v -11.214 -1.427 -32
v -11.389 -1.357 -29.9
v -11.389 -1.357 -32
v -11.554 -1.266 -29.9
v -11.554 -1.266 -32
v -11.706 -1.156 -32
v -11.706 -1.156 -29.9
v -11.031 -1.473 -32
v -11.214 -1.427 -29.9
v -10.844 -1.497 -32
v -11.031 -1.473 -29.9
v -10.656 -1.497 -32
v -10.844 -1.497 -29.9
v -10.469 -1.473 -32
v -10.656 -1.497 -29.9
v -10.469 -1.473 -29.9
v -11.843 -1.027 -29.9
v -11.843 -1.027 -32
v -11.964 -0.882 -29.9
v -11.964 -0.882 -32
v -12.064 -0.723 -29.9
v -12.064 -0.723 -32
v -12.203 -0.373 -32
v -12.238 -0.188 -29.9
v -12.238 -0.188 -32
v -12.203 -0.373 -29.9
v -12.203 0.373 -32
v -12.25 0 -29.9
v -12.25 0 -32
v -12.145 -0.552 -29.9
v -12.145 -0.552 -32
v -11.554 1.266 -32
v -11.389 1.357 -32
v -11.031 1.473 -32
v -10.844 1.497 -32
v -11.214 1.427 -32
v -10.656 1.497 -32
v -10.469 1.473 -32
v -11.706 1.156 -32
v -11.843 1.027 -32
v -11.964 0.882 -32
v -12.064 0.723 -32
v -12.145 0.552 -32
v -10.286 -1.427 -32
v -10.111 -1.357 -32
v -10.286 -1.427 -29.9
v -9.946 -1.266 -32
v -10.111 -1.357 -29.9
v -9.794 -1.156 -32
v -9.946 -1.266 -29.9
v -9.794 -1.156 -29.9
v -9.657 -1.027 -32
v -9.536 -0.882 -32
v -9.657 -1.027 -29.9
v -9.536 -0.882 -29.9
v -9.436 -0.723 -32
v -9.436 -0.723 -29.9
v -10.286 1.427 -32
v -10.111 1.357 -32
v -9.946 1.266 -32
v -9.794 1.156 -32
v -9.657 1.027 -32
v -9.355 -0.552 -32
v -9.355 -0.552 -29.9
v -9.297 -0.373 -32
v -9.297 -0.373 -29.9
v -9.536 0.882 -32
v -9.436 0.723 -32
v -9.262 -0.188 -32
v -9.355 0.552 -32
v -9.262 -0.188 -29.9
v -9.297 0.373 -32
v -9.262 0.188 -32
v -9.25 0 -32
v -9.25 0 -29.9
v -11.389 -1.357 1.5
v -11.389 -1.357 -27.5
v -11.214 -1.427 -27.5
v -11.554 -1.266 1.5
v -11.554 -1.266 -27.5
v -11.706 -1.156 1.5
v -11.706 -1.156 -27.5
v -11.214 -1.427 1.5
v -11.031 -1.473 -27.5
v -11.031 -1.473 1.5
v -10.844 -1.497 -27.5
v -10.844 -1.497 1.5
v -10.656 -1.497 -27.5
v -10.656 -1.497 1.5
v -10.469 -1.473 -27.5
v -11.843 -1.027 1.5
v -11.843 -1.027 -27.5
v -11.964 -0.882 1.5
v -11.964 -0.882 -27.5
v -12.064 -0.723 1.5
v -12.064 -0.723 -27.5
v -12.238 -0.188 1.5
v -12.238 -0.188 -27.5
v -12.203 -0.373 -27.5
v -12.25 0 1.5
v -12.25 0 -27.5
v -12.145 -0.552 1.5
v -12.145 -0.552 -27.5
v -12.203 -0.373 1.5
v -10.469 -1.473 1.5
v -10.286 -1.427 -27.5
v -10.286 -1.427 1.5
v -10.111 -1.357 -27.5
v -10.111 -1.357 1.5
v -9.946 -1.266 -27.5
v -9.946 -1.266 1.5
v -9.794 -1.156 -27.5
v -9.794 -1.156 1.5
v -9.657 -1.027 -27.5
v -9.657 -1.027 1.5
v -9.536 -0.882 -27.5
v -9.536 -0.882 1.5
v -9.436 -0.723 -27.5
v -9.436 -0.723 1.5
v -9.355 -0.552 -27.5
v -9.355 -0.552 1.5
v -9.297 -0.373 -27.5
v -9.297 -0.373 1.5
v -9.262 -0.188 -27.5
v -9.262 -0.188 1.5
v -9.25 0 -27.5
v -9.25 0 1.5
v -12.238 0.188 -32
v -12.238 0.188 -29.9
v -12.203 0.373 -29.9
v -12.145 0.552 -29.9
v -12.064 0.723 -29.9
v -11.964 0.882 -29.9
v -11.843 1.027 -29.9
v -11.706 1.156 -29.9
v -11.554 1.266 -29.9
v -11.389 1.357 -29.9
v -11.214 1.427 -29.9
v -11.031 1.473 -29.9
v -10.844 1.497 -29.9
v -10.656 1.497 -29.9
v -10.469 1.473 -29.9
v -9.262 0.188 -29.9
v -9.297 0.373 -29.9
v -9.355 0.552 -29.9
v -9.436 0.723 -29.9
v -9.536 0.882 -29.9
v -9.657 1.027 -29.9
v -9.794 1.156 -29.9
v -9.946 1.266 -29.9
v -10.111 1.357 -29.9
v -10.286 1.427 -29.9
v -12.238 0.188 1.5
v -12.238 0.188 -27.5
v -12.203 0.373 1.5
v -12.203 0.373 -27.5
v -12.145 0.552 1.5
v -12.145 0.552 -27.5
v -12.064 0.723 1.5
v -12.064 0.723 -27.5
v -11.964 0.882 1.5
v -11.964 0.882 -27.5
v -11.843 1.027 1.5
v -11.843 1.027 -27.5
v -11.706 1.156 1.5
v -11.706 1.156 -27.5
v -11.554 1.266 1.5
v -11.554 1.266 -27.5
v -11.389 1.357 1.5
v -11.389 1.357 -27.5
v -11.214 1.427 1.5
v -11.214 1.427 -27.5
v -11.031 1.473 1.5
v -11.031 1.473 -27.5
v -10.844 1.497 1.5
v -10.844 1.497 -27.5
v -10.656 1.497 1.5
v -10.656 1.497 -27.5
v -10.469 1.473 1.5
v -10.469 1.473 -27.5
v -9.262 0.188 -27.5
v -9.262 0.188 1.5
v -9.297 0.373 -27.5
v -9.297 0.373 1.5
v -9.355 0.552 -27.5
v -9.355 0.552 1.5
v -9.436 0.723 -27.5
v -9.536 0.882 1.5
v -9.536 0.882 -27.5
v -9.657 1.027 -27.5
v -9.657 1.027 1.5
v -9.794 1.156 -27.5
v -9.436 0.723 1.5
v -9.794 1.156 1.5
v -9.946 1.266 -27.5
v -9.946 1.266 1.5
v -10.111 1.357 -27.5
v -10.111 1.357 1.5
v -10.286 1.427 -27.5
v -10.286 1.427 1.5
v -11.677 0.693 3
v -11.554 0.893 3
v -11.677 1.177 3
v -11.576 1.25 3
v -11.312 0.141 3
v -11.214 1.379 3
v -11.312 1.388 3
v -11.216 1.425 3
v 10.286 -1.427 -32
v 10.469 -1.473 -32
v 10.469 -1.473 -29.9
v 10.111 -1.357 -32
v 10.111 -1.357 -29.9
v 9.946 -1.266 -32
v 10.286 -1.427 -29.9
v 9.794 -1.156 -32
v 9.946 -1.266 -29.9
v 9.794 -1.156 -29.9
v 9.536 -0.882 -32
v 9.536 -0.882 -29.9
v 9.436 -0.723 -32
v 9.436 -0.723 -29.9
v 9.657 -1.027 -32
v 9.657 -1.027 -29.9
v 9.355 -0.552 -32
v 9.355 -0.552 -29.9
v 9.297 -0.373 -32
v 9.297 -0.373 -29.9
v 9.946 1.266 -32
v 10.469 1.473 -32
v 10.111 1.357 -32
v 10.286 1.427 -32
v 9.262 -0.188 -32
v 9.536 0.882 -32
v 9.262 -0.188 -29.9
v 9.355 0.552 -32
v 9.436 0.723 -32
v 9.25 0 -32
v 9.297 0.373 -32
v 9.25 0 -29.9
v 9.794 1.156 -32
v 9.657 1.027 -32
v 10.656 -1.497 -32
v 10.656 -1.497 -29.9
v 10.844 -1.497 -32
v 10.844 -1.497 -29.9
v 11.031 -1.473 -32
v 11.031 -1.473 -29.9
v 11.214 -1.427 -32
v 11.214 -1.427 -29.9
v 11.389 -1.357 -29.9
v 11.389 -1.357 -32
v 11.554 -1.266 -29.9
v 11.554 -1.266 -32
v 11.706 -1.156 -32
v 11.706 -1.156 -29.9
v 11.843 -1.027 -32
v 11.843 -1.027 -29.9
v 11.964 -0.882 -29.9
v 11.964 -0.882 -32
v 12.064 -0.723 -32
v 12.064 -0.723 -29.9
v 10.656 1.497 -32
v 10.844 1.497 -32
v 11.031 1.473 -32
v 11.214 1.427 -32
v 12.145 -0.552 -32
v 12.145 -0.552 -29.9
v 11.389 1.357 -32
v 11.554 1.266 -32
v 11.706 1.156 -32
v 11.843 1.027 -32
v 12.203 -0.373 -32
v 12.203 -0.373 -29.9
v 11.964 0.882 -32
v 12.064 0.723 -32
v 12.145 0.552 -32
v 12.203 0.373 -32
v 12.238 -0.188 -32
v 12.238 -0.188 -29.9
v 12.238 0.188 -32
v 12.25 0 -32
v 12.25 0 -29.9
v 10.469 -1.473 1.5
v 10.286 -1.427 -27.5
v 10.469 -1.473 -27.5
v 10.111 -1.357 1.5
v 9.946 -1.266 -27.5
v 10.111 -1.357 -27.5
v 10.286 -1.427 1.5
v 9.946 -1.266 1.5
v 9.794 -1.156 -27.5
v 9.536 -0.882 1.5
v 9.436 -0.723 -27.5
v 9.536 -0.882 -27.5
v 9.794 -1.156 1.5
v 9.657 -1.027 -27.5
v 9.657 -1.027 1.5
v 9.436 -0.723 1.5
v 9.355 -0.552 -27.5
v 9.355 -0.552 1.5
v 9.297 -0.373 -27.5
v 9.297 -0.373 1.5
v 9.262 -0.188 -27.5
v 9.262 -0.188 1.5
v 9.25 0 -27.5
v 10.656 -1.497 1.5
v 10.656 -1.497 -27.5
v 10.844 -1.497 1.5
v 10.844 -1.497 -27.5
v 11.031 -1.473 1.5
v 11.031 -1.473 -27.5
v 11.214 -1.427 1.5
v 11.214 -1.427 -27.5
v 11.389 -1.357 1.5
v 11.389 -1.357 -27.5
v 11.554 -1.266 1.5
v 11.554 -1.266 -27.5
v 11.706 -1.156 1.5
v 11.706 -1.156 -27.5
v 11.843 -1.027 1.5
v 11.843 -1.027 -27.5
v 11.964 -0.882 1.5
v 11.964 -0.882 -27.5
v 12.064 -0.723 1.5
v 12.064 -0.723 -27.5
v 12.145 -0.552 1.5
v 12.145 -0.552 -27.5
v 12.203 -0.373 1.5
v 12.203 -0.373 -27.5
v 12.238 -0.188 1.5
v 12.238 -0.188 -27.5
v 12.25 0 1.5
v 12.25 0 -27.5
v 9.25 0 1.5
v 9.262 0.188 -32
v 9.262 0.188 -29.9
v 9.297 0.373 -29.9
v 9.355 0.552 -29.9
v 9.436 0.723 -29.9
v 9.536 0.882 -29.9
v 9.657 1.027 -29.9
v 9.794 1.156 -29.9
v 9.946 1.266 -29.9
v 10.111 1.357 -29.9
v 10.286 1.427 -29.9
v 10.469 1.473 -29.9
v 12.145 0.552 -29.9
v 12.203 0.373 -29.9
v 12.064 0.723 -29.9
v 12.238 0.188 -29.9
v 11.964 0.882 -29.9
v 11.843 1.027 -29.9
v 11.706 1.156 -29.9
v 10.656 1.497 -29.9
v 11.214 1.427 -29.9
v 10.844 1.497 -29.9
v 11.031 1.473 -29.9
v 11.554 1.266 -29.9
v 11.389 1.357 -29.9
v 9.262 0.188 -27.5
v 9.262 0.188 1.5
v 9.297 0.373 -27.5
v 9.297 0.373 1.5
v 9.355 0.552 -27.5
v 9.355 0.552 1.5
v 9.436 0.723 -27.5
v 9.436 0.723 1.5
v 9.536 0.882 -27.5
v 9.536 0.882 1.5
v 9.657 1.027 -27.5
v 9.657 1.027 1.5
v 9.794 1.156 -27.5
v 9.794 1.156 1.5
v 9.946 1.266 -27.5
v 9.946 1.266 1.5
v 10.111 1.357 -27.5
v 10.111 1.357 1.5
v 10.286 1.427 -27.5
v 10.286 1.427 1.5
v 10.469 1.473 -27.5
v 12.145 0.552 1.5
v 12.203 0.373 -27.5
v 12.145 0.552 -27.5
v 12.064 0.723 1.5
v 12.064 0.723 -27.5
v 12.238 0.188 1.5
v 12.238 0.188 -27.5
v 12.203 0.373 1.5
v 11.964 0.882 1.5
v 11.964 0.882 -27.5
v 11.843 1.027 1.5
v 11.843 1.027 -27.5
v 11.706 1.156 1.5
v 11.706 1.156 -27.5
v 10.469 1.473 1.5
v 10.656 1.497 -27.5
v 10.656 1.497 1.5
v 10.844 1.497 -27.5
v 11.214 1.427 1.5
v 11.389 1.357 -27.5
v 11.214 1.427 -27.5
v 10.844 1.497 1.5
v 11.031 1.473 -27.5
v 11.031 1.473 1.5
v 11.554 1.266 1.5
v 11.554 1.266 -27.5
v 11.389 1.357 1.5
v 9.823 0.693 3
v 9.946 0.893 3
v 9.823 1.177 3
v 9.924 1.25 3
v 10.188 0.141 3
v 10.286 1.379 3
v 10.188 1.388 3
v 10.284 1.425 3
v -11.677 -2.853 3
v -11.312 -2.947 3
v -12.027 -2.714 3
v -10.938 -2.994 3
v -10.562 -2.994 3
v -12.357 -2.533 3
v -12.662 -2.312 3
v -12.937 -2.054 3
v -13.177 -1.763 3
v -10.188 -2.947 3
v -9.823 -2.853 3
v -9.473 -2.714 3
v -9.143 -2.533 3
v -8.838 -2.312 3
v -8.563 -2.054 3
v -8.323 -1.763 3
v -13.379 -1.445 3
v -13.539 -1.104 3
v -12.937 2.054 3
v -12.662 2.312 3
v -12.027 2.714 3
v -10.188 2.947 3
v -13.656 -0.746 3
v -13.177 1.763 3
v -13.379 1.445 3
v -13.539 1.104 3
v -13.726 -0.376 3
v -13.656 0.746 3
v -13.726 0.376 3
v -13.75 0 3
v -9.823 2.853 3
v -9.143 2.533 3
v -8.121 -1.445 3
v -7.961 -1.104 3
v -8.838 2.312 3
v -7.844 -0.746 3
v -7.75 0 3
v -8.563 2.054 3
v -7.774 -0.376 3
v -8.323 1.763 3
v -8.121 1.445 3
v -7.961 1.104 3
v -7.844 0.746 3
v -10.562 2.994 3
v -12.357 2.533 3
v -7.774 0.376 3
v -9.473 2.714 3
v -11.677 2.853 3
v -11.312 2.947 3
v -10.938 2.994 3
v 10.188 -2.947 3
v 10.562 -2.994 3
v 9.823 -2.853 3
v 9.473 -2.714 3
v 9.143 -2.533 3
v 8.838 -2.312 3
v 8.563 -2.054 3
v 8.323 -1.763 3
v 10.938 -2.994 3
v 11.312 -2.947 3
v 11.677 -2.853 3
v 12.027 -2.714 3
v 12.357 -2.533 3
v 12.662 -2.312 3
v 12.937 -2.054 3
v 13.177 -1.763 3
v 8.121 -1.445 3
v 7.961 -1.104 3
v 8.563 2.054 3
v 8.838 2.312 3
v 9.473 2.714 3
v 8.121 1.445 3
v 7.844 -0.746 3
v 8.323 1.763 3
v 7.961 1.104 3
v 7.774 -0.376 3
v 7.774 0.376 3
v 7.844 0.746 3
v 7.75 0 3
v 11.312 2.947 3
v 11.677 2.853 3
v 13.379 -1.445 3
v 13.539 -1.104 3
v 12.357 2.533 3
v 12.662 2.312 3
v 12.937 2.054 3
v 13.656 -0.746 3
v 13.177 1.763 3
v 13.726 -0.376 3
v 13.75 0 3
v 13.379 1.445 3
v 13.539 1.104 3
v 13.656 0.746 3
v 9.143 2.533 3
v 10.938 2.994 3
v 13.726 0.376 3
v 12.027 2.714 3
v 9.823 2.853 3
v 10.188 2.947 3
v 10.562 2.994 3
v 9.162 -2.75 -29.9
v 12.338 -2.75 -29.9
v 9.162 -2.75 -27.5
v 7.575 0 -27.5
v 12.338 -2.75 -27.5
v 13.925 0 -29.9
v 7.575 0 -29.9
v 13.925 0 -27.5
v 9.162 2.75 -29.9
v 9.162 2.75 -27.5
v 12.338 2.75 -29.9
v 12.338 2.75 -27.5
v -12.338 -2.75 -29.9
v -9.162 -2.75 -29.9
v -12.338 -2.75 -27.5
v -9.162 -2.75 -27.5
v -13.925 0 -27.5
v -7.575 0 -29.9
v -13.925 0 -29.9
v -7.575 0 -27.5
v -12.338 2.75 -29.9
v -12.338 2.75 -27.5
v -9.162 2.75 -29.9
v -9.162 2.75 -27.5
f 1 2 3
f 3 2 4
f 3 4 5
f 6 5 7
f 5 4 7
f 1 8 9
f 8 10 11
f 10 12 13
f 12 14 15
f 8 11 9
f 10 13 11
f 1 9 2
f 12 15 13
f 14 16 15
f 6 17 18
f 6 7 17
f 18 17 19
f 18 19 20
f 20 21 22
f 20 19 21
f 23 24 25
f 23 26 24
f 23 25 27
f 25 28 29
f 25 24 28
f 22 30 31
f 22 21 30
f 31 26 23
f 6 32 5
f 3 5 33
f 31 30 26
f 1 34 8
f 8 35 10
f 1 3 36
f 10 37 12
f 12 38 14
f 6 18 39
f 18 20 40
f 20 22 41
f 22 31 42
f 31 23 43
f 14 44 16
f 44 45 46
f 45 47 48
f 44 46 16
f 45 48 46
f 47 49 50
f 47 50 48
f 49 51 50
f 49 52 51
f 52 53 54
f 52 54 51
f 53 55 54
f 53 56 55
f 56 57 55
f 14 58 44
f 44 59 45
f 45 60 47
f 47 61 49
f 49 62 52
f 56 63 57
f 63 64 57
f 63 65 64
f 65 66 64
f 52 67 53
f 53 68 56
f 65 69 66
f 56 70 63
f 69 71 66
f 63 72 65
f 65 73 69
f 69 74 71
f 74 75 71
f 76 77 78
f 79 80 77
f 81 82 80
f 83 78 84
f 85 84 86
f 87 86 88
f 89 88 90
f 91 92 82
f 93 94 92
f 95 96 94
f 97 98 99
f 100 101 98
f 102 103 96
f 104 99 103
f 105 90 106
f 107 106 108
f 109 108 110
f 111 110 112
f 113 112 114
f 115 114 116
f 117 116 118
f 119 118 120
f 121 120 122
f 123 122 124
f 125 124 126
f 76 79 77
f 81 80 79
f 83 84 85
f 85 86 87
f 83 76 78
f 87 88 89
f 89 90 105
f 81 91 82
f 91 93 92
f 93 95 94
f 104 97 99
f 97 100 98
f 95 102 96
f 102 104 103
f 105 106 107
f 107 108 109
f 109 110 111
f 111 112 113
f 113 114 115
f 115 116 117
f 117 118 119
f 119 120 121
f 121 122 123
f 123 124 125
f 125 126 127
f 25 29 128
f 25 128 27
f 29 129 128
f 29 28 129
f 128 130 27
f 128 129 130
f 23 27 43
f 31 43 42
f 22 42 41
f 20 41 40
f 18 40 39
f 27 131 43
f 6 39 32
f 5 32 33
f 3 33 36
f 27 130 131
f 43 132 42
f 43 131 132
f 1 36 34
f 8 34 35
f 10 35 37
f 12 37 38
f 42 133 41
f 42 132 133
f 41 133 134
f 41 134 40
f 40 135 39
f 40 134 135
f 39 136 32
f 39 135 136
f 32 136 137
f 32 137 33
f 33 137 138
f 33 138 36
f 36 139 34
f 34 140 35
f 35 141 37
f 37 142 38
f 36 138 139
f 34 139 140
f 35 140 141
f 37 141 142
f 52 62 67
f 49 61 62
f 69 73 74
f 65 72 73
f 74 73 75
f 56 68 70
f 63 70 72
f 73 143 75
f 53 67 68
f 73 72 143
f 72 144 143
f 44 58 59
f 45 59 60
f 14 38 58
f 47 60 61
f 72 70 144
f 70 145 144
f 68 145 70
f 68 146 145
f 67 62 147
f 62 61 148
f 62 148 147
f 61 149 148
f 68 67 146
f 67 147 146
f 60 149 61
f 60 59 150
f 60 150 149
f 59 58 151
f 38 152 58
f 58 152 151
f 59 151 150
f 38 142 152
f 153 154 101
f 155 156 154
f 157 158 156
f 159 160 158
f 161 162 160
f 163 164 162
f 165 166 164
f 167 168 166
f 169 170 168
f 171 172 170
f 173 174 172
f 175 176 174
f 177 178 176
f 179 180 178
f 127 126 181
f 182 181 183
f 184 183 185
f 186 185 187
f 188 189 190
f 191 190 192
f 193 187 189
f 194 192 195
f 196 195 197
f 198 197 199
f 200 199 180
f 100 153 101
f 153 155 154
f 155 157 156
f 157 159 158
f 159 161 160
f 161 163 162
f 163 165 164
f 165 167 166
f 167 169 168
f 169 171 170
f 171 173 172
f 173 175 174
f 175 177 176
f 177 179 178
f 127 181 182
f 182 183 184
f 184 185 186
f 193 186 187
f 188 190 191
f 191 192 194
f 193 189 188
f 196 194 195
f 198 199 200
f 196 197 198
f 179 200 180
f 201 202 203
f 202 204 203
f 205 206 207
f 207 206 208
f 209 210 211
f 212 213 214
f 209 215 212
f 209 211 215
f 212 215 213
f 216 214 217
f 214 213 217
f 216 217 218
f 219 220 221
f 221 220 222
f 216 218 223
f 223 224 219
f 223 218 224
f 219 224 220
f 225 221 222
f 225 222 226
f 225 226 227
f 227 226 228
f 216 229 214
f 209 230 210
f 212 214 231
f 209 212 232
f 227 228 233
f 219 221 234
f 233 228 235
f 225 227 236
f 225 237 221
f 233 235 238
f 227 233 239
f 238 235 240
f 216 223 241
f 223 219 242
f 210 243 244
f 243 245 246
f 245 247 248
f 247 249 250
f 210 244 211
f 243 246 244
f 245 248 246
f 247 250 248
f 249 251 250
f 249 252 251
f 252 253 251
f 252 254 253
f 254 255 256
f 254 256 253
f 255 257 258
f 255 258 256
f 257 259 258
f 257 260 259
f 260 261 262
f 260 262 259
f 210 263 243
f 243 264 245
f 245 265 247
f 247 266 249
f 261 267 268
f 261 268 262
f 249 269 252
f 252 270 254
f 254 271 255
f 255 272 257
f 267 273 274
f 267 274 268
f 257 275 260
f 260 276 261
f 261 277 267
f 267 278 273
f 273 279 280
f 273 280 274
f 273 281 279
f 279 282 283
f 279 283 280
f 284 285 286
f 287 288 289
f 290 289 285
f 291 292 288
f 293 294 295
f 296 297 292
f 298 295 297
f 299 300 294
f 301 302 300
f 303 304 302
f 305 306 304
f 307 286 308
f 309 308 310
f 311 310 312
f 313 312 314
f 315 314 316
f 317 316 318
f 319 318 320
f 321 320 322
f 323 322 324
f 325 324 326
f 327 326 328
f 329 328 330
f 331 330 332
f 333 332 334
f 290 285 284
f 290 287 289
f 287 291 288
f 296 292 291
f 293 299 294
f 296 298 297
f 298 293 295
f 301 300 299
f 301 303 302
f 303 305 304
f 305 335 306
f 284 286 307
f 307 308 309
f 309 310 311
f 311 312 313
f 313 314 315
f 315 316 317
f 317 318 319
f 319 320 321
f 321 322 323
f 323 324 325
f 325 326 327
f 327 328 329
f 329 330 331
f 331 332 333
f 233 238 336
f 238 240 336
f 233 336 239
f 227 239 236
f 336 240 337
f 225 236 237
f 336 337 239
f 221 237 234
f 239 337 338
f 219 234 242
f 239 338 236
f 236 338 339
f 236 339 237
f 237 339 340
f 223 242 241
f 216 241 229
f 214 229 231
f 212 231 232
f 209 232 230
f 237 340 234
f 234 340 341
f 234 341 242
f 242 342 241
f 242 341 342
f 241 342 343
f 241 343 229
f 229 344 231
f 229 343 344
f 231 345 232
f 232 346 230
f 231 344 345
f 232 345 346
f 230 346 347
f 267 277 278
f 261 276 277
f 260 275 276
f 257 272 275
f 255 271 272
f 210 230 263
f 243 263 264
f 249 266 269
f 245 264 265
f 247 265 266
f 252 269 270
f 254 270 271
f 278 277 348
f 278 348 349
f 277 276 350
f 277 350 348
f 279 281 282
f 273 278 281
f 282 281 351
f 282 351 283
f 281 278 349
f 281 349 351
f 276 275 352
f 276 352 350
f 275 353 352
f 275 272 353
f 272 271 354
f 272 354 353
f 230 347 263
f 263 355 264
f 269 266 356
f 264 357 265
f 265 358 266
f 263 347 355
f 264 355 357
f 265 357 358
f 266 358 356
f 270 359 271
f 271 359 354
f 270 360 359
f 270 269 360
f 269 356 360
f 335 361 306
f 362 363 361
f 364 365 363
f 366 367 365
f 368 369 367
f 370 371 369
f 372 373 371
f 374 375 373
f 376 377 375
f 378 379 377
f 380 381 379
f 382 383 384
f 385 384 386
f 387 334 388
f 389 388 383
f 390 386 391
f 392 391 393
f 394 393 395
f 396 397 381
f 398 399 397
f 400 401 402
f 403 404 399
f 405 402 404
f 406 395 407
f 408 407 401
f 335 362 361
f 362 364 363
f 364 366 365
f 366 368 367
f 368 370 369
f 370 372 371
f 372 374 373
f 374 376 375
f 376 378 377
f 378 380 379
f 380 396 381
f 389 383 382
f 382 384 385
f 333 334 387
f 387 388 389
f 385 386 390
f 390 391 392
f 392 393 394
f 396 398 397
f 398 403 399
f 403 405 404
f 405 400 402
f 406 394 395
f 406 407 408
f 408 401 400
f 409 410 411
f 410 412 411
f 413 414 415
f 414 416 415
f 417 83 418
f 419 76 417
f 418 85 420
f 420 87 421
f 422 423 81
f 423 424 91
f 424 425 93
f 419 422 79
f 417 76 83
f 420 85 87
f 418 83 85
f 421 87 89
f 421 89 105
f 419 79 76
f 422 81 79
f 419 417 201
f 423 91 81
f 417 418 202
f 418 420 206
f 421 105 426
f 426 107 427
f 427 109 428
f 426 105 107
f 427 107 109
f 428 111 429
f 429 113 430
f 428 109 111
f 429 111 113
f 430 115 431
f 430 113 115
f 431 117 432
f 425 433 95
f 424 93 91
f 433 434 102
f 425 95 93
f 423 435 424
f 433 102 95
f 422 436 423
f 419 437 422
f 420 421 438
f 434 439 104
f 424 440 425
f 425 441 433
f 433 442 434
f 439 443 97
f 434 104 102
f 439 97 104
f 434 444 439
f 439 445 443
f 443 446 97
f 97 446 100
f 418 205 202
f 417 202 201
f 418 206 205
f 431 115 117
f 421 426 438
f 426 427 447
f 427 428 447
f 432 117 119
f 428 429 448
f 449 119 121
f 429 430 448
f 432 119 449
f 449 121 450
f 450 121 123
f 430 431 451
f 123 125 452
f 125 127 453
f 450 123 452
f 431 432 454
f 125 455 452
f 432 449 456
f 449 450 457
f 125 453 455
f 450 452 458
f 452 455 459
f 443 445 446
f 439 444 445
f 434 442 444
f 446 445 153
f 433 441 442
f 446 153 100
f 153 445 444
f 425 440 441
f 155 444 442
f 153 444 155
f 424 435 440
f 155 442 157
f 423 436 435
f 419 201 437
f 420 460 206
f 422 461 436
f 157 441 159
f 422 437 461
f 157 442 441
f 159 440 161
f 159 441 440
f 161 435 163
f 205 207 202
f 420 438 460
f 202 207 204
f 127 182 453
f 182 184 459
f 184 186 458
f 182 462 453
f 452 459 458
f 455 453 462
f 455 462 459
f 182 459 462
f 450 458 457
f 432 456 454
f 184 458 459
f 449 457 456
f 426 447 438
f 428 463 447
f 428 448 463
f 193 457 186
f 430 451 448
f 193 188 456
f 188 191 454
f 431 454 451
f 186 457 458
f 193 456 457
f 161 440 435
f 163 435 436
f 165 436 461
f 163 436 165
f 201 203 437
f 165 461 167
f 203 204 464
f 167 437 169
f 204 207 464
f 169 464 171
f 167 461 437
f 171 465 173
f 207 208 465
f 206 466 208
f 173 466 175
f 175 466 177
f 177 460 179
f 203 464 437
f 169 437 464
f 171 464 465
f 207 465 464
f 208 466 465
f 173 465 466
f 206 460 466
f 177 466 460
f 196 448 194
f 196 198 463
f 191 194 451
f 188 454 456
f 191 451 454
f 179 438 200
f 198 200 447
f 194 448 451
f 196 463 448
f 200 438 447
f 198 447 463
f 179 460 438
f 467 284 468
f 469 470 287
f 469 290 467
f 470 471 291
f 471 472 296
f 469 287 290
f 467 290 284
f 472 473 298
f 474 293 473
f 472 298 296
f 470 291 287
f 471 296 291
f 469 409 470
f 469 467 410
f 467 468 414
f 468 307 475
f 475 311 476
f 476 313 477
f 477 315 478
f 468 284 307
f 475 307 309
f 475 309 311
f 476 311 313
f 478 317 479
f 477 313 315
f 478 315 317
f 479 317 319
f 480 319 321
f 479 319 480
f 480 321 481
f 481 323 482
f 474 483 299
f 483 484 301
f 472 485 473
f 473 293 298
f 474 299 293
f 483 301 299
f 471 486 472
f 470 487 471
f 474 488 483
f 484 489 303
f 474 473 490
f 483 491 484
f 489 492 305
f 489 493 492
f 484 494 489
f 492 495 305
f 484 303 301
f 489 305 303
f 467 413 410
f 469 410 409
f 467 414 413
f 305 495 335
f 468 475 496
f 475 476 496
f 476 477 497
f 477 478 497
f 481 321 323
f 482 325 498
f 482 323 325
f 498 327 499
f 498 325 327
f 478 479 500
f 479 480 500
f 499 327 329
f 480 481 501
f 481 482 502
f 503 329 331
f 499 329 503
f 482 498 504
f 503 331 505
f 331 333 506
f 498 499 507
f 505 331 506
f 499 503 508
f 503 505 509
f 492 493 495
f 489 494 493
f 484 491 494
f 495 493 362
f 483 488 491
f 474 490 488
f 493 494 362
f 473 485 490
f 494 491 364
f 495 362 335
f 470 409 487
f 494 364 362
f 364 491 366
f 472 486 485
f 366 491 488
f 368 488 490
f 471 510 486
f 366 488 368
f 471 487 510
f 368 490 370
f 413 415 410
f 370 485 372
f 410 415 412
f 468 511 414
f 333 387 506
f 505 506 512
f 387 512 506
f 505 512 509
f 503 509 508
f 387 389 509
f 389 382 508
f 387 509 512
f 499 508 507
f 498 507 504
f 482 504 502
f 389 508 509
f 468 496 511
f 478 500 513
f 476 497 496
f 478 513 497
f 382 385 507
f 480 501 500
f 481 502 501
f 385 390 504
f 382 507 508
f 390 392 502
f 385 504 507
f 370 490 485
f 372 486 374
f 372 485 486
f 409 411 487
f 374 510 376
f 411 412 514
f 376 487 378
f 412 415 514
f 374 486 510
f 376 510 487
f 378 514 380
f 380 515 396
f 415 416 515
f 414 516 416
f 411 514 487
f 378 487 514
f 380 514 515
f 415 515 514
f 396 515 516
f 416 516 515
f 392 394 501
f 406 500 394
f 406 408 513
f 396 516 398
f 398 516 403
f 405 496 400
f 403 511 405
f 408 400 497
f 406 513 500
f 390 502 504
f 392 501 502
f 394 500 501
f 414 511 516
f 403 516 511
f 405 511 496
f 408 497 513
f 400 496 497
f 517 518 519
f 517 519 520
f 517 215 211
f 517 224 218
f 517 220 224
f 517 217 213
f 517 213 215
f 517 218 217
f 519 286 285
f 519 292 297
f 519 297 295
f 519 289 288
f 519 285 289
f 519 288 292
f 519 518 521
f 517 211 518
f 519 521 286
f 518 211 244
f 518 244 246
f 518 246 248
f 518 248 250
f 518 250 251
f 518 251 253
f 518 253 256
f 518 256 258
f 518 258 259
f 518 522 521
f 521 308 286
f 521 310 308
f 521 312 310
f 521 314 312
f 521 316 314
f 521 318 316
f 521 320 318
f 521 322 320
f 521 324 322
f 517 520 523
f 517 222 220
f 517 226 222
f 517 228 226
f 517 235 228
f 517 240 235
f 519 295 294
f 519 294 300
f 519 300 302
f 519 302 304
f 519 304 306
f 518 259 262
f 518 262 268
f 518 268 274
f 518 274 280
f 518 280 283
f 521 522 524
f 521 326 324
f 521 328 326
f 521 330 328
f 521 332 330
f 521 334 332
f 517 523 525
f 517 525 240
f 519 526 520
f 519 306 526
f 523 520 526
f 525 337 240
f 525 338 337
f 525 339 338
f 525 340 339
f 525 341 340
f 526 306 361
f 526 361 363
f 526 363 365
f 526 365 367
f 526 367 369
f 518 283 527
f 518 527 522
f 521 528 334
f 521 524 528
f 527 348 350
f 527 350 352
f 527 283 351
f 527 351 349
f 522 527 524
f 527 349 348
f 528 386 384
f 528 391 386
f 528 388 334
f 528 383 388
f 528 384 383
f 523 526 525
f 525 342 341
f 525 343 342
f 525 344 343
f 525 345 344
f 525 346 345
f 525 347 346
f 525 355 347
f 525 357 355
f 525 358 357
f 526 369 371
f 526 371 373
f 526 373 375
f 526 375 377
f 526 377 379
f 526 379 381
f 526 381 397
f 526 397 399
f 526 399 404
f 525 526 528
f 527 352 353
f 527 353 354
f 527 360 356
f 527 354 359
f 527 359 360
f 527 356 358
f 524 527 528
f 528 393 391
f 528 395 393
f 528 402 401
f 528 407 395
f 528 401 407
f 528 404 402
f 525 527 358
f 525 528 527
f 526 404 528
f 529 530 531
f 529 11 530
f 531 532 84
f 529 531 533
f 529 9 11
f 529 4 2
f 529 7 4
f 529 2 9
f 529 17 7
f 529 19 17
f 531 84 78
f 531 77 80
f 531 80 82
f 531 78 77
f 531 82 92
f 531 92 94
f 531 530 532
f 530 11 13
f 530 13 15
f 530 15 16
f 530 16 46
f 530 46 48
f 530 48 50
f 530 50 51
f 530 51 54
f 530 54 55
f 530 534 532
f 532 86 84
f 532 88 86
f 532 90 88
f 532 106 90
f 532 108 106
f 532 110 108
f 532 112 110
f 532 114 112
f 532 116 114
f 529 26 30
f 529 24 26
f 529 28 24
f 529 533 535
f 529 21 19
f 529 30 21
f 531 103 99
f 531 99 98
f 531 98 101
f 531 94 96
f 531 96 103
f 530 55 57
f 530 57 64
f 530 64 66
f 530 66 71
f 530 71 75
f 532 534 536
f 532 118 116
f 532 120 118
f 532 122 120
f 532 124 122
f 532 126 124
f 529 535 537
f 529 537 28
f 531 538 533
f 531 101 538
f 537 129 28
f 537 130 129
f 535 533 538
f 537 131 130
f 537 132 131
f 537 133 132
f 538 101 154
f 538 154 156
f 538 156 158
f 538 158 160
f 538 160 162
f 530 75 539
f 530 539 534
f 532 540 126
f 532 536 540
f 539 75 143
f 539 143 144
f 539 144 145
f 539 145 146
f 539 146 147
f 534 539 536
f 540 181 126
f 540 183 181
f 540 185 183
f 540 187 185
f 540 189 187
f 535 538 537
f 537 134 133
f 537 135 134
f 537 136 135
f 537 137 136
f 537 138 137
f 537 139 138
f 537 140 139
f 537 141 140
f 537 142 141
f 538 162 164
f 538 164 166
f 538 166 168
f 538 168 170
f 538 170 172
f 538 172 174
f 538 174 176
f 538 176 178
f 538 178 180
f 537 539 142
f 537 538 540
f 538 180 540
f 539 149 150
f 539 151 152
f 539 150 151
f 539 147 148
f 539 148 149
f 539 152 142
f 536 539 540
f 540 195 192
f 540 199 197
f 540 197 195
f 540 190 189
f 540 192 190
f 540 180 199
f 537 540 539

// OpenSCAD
$fn = 50;

difference() {
	union() {
		translate(v = [0, 0, 0]) {
			rotate(a = [0, 0, 0]) {
				difference() {
					union() {
						translate(v = [-10.75, 0, 3]) {
							rotate(a = [0, 0, 0]) {
								difference() {
									union() {
										translate(v = [0, 0, -35.0]) {
											cylinder(h = 35, r = 1.5);
										}
										translate(v = [0, 0, -1.5]) {
											cylinder(h = 1.5, r1 = 1.5, r2 = 3);
										}
									}
									union();
								}
							}
						}
						translate(v = [-10.75, 0, -29.900000000000002]) {
							rotate(a = [0, 0, 0]) {
								difference() {
									union() {
										linear_extrude(height = 2.4) {
											polygon(points = [[3.1754264805429417, 0.0], [1.5877132402714713, 2.75], [-1.5877132402714702, 2.7500000000000004], [-3.1754264805429417, 3.888775875324659e-16], [-1.5877132402714722, -2.7499999999999996], [1.5877132402714687, -2.7500000000000013]]);
										}
									}
									union();
								}
							}
						}
						translate(v = [10.75, 0, 3]) {
							rotate(a = [0, 0, 0]) {
								difference() {
									union() {
										translate(v = [0, 0, -35.0]) {
											cylinder(h = 35, r = 1.5);
										}
										translate(v = [0, 0, -1.5]) {
											cylinder(h = 1.5, r1 = 1.5, r2 = 3);
										}
									}
									union();
								}
							}
						}
						translate(v = [10.75, 0, -29.900000000000002]) {
							rotate(a = [0, 0, 0]) {
								difference() {
									union() {
										linear_extrude(height = 2.4) {
											polygon(points = [[3.1754264805429417, 0.0], [1.5877132402714713, 2.75], [-1.5877132402714702, 2.7500000000000004], [-3.1754264805429417, 3.888775875324659e-16], [-1.5877132402714722, -2.7499999999999996], [1.5877132402714687, -2.7500000000000013]]);
										}
									}
									union();
								}
							}
						}
					}
					union();
				}
			}
		}
	}
	union();
}
